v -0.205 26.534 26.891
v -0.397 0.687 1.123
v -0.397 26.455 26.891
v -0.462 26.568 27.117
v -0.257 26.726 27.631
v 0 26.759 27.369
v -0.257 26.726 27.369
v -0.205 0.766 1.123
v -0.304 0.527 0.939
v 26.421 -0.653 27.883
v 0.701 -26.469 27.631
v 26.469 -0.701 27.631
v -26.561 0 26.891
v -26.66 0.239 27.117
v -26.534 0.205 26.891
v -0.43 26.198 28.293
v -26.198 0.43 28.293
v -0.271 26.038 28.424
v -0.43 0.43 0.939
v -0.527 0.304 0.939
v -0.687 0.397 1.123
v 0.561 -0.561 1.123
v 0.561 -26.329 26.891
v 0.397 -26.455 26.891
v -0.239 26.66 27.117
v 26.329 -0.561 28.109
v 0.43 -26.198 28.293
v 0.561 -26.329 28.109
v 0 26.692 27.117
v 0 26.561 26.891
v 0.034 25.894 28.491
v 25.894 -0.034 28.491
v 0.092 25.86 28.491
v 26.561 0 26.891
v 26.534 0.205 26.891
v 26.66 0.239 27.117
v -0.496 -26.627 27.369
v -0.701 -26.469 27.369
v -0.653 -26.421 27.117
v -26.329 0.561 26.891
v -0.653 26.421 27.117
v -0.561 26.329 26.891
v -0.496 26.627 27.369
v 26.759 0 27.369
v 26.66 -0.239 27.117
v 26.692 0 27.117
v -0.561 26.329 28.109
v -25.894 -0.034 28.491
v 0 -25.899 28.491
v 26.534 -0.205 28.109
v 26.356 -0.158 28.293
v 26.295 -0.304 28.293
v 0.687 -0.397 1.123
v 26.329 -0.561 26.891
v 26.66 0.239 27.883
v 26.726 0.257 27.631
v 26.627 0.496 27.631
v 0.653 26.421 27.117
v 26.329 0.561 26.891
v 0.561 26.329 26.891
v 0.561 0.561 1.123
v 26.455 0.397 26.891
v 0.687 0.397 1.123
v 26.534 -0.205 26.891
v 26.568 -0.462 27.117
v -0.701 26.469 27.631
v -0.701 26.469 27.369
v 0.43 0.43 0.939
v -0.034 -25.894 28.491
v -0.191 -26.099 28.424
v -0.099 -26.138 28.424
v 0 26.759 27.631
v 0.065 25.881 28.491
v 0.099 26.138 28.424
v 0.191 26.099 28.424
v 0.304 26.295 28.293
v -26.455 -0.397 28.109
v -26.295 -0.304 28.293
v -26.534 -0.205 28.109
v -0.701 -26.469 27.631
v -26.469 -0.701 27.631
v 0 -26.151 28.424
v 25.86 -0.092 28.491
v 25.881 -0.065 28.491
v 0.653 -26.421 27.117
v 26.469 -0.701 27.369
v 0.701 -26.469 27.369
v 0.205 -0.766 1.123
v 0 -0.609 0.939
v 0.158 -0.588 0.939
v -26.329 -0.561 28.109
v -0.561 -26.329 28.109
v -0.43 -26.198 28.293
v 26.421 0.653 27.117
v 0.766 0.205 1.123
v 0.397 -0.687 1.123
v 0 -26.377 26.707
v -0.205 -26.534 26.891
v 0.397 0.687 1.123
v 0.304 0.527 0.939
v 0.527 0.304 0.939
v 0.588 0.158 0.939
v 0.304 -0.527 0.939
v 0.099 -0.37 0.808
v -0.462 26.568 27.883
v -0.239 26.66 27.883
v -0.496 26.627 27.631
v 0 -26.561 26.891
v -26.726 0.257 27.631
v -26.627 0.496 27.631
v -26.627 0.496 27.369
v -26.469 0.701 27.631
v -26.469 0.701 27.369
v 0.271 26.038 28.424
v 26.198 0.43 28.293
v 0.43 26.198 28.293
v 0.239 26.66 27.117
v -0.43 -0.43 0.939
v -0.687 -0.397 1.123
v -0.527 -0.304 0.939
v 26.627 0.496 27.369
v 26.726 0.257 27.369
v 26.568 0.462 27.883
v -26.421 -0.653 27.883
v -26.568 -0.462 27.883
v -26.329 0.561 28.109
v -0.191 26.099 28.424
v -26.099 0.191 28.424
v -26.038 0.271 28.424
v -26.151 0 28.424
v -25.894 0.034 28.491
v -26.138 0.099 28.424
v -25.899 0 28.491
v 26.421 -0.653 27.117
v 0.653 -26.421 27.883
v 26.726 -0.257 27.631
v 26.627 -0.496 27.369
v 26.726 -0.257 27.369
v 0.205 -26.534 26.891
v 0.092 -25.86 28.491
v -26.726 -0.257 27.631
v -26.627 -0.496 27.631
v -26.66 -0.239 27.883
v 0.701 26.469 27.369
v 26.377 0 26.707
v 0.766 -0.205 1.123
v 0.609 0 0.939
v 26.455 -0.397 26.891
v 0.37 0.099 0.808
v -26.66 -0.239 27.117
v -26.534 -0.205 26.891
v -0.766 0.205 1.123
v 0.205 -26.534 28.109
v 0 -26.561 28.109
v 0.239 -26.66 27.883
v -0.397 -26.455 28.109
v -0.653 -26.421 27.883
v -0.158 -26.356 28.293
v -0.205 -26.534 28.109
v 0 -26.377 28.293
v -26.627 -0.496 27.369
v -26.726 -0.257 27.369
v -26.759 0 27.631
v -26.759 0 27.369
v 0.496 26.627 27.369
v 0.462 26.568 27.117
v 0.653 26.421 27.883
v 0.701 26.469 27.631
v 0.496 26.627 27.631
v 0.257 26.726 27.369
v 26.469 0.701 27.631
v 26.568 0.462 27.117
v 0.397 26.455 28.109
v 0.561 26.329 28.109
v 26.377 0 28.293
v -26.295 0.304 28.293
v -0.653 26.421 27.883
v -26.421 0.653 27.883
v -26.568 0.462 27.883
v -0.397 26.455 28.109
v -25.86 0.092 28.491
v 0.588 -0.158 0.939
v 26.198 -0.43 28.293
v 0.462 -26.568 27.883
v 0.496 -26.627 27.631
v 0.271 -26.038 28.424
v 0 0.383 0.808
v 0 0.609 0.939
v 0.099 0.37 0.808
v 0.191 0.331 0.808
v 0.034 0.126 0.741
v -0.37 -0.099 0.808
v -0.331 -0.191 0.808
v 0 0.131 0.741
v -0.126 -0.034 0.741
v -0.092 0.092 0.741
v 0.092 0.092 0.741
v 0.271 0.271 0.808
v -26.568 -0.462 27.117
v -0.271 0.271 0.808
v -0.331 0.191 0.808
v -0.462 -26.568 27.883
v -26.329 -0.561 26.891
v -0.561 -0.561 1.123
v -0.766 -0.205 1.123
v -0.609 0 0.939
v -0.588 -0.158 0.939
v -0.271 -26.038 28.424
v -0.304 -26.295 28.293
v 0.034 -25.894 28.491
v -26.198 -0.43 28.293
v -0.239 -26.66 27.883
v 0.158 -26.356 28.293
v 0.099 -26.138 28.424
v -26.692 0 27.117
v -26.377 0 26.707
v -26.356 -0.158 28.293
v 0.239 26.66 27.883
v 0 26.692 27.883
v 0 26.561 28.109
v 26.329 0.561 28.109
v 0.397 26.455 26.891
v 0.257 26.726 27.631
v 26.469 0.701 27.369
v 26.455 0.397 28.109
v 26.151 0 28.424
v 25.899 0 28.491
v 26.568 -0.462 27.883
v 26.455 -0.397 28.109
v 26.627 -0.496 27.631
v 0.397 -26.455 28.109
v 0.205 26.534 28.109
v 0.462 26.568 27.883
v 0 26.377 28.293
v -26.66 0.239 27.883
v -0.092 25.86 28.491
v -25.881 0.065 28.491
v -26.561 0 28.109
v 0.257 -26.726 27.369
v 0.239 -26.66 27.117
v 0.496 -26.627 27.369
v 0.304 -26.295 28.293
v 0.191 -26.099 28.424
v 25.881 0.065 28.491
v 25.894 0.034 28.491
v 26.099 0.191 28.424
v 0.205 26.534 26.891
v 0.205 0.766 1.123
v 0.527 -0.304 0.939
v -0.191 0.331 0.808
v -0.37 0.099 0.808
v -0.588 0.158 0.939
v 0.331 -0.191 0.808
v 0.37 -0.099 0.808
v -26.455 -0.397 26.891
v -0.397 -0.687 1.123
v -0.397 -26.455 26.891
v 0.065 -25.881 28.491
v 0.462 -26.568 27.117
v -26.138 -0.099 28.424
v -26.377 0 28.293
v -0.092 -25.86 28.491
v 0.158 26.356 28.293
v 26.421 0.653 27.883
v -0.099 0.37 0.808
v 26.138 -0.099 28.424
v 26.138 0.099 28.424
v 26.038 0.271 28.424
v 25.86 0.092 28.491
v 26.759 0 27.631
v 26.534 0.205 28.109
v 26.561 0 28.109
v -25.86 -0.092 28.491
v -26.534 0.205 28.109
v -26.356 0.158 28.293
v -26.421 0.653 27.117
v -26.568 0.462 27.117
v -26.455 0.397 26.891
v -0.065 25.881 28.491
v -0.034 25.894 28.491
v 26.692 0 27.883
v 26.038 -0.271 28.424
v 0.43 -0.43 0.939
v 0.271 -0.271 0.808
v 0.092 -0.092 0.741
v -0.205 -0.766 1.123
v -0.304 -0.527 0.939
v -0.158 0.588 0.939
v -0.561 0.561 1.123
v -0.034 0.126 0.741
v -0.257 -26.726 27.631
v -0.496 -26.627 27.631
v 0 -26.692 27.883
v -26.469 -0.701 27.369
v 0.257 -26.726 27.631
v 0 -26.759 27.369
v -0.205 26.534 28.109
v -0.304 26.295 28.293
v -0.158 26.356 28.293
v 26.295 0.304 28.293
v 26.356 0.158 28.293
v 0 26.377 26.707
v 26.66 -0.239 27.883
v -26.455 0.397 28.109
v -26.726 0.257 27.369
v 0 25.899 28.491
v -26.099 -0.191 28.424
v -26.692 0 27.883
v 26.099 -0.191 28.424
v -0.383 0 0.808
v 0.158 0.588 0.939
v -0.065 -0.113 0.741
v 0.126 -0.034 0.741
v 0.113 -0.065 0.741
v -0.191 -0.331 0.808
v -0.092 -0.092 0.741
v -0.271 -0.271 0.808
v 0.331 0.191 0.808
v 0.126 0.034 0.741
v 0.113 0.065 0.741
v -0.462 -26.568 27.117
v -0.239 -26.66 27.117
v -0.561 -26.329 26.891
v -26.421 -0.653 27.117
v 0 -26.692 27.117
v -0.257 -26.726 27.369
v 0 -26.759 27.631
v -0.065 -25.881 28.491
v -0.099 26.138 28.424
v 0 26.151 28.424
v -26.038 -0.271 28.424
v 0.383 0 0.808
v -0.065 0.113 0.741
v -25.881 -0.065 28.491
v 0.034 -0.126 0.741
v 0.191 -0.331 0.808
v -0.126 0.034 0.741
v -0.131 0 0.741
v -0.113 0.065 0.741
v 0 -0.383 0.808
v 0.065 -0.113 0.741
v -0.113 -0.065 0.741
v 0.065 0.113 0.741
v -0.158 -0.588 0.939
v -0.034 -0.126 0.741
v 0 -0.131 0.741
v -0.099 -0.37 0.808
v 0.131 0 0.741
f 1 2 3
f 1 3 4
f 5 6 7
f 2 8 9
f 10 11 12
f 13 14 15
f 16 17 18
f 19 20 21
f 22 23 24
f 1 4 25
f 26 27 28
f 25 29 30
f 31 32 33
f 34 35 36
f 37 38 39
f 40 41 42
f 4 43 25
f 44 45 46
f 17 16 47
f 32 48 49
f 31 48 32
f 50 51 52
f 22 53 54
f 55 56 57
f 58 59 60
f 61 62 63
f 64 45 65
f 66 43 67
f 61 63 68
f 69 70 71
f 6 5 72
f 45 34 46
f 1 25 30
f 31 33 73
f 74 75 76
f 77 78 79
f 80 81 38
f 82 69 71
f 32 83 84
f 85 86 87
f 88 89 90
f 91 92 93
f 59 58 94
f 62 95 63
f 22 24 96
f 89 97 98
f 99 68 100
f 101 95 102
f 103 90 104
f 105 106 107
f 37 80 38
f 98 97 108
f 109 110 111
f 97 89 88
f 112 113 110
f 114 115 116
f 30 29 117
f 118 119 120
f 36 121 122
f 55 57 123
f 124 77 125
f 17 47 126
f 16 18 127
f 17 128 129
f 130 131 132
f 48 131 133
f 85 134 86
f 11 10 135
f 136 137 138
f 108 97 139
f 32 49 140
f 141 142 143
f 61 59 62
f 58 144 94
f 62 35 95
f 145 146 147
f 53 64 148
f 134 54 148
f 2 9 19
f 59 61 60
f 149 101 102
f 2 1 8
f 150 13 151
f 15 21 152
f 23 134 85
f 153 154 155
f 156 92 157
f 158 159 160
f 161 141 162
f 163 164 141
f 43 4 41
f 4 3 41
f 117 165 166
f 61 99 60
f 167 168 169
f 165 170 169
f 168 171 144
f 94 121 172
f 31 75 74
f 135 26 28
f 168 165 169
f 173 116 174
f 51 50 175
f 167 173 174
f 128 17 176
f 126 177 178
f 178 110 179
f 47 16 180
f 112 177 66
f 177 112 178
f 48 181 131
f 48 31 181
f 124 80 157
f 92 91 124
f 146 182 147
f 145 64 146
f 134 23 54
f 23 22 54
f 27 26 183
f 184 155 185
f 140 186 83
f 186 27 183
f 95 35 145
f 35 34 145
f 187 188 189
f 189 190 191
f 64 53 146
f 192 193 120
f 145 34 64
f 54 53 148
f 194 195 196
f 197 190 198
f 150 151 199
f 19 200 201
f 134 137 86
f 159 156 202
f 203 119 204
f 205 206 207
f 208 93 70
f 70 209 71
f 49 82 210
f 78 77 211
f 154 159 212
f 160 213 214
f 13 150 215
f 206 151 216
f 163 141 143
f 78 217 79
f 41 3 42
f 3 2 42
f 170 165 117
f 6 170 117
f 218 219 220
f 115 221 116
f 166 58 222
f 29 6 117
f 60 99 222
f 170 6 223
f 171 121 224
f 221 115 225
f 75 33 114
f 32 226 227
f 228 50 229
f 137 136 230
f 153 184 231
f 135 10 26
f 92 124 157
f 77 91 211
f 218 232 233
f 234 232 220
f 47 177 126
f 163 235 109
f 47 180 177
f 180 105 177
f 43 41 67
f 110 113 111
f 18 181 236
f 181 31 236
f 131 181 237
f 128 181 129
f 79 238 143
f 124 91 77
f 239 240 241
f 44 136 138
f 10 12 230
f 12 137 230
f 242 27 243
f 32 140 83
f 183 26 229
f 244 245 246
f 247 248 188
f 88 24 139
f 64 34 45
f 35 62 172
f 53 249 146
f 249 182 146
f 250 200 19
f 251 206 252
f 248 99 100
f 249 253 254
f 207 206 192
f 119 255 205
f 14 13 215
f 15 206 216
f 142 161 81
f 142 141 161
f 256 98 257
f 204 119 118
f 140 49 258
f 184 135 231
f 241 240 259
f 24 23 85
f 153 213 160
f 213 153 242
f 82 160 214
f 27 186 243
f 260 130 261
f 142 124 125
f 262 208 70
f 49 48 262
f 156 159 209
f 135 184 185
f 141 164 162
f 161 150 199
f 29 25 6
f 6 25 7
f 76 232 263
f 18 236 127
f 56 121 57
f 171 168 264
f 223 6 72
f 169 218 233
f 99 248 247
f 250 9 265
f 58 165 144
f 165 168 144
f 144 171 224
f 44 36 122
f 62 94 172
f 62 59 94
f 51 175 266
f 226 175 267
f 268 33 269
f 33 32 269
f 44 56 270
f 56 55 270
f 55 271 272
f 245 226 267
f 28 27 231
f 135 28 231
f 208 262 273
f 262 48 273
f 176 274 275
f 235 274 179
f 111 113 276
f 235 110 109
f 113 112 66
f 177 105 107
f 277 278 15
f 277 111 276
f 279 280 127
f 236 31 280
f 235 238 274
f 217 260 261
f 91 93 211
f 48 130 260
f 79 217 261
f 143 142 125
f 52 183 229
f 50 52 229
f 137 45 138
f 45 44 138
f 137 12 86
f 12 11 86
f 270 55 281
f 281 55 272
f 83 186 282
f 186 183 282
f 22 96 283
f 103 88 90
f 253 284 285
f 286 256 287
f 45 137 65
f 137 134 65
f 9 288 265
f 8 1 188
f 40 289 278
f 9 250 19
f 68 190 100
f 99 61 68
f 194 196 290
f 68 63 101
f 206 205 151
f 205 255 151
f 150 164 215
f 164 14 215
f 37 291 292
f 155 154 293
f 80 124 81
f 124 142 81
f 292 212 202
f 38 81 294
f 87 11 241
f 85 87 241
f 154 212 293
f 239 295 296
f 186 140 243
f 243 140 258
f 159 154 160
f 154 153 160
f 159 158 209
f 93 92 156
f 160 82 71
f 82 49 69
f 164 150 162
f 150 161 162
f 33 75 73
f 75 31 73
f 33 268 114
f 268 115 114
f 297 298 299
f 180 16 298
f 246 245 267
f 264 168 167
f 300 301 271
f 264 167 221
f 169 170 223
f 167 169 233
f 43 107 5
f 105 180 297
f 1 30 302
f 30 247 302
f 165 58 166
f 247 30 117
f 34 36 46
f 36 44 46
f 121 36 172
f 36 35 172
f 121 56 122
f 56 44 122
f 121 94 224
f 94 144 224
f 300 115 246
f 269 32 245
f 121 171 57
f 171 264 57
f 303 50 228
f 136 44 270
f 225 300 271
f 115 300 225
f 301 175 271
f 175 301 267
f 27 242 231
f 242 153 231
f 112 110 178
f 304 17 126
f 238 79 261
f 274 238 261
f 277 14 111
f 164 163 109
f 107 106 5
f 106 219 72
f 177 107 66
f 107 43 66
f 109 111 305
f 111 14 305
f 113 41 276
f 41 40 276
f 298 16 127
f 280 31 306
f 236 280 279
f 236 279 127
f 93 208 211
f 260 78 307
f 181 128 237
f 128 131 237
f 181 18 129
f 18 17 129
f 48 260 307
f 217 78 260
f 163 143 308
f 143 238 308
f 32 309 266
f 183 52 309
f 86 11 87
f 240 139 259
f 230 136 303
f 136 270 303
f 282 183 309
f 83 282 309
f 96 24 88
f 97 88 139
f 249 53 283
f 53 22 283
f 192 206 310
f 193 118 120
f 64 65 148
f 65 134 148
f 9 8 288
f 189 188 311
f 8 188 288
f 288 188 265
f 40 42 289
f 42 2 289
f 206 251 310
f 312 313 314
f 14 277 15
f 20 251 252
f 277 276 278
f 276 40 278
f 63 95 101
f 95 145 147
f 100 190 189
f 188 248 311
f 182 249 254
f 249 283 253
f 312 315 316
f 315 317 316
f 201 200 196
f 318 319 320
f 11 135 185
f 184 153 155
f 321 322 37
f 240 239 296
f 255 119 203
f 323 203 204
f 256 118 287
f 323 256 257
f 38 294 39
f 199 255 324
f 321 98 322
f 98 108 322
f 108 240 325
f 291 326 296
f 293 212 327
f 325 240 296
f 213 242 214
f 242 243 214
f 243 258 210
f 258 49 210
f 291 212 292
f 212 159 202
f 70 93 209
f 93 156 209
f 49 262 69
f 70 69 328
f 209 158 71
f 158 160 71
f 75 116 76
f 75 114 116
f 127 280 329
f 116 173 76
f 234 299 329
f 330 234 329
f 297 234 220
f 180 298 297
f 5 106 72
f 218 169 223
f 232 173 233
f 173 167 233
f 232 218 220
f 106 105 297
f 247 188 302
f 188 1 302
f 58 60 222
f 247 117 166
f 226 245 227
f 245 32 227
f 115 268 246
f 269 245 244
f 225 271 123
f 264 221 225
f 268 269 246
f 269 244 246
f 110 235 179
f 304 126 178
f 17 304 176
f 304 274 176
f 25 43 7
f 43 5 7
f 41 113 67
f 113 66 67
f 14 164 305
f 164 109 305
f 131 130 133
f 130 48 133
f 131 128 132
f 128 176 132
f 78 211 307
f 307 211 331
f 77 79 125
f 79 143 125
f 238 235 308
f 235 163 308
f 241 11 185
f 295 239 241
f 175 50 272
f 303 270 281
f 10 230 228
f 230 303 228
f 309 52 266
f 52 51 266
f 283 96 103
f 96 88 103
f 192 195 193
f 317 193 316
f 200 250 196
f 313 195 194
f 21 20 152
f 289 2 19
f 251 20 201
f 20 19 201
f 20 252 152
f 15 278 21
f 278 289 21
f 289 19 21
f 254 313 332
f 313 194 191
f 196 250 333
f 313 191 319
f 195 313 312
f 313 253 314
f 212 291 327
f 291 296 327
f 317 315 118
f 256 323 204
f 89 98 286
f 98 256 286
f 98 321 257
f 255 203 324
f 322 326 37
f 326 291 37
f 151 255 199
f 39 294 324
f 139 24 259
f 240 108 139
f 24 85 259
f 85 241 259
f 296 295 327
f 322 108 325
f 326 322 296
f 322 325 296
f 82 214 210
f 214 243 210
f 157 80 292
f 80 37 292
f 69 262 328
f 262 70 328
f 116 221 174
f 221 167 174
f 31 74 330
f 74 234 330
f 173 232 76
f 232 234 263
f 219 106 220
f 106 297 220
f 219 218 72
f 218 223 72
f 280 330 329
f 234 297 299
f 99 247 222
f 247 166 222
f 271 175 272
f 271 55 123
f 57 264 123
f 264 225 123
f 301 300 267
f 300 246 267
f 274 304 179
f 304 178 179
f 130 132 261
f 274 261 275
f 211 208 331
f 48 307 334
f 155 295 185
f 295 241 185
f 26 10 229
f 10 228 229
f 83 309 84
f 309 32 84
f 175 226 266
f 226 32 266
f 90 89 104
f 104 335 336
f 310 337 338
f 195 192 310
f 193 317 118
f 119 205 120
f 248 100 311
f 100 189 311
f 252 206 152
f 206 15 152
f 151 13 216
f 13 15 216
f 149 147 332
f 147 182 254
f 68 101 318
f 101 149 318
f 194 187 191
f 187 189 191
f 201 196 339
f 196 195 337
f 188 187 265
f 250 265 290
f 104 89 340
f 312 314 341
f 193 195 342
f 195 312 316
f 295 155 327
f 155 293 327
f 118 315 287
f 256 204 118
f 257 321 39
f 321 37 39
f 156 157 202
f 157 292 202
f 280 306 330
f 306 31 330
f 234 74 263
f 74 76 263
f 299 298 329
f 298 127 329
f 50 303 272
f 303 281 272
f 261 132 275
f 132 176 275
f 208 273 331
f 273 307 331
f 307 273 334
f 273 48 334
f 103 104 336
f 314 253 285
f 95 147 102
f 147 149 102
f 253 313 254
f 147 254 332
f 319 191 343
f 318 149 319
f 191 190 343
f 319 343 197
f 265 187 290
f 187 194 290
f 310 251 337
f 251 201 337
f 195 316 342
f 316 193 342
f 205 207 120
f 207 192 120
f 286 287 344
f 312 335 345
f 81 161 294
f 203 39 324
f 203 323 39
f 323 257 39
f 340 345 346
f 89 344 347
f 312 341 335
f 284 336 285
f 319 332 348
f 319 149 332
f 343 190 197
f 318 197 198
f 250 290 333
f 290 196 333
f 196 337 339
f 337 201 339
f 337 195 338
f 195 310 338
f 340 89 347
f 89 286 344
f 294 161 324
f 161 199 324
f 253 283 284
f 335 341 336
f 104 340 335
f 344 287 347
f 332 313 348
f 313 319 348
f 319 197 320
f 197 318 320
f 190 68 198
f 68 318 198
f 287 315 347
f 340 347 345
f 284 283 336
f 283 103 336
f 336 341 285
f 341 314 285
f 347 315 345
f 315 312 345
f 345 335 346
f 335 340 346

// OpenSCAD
// file: def.scad
total_size = 57;

round_radius = 1;
sticker_margin = 2.5;
sticker_round_radius = 0.75;
inf = total_size * 10;

theta = atan(sqrt(2));

cut1_rot = [-theta, 0, -45];
sticker_dif_cut1_dis = total_size / 2 / tan(theta) - round_radius / tan(theta / 2) + round_radius - sticker_margin;
sticker_int_cut1_dis = total_size / 2 / tan(theta) + round_radius * tan(theta / 2) - round_radius + sticker_margin;

module _cube() {
    cube([total_size - round_radius * 2, total_size - round_radius * 2, total_size - round_radius * 2], center = true);
}

module _cut1() {
    translate([-inf, -inf, 0])
        cube([inf * 2, inf * 2, inf]);
}

module _int_cut1() {
    translate([-inf, -inf, round_radius])
        cube([inf * 2, inf * 2, inf]);
}

module _sticker_int_cut1() {
    rotate([-90, 0, 0])
        translate([-inf, -inf, sticker_int_cut1_dis])
            cube([inf * 2, inf * 2, inf]);
}

module _sticker_dif_cut1() {
    rotate([-90, 0, 0])
        translate([-inf, -inf, sticker_dif_cut1_dis])
            cube([inf * 2, inf * 2, inf]);
}

module _sticker_base() {
    translate([0, 0, total_size / 2])
        cube([total_size - sticker_margin * 2, total_size - sticker_margin * 2, 0.1], center = true);
}
// main file
include <def.scad>

module center_block() {
    minkowski() {
        intersection() {
            _cube();
            intersection_for(deg = [0 : 90 : 270])
                rotate([0, 0, deg])
                    rotate(cut1_rot)
                        _int_cut1();
        }
        sphere(r = round_radius, $fn = 24);
    }
}

center_block();
